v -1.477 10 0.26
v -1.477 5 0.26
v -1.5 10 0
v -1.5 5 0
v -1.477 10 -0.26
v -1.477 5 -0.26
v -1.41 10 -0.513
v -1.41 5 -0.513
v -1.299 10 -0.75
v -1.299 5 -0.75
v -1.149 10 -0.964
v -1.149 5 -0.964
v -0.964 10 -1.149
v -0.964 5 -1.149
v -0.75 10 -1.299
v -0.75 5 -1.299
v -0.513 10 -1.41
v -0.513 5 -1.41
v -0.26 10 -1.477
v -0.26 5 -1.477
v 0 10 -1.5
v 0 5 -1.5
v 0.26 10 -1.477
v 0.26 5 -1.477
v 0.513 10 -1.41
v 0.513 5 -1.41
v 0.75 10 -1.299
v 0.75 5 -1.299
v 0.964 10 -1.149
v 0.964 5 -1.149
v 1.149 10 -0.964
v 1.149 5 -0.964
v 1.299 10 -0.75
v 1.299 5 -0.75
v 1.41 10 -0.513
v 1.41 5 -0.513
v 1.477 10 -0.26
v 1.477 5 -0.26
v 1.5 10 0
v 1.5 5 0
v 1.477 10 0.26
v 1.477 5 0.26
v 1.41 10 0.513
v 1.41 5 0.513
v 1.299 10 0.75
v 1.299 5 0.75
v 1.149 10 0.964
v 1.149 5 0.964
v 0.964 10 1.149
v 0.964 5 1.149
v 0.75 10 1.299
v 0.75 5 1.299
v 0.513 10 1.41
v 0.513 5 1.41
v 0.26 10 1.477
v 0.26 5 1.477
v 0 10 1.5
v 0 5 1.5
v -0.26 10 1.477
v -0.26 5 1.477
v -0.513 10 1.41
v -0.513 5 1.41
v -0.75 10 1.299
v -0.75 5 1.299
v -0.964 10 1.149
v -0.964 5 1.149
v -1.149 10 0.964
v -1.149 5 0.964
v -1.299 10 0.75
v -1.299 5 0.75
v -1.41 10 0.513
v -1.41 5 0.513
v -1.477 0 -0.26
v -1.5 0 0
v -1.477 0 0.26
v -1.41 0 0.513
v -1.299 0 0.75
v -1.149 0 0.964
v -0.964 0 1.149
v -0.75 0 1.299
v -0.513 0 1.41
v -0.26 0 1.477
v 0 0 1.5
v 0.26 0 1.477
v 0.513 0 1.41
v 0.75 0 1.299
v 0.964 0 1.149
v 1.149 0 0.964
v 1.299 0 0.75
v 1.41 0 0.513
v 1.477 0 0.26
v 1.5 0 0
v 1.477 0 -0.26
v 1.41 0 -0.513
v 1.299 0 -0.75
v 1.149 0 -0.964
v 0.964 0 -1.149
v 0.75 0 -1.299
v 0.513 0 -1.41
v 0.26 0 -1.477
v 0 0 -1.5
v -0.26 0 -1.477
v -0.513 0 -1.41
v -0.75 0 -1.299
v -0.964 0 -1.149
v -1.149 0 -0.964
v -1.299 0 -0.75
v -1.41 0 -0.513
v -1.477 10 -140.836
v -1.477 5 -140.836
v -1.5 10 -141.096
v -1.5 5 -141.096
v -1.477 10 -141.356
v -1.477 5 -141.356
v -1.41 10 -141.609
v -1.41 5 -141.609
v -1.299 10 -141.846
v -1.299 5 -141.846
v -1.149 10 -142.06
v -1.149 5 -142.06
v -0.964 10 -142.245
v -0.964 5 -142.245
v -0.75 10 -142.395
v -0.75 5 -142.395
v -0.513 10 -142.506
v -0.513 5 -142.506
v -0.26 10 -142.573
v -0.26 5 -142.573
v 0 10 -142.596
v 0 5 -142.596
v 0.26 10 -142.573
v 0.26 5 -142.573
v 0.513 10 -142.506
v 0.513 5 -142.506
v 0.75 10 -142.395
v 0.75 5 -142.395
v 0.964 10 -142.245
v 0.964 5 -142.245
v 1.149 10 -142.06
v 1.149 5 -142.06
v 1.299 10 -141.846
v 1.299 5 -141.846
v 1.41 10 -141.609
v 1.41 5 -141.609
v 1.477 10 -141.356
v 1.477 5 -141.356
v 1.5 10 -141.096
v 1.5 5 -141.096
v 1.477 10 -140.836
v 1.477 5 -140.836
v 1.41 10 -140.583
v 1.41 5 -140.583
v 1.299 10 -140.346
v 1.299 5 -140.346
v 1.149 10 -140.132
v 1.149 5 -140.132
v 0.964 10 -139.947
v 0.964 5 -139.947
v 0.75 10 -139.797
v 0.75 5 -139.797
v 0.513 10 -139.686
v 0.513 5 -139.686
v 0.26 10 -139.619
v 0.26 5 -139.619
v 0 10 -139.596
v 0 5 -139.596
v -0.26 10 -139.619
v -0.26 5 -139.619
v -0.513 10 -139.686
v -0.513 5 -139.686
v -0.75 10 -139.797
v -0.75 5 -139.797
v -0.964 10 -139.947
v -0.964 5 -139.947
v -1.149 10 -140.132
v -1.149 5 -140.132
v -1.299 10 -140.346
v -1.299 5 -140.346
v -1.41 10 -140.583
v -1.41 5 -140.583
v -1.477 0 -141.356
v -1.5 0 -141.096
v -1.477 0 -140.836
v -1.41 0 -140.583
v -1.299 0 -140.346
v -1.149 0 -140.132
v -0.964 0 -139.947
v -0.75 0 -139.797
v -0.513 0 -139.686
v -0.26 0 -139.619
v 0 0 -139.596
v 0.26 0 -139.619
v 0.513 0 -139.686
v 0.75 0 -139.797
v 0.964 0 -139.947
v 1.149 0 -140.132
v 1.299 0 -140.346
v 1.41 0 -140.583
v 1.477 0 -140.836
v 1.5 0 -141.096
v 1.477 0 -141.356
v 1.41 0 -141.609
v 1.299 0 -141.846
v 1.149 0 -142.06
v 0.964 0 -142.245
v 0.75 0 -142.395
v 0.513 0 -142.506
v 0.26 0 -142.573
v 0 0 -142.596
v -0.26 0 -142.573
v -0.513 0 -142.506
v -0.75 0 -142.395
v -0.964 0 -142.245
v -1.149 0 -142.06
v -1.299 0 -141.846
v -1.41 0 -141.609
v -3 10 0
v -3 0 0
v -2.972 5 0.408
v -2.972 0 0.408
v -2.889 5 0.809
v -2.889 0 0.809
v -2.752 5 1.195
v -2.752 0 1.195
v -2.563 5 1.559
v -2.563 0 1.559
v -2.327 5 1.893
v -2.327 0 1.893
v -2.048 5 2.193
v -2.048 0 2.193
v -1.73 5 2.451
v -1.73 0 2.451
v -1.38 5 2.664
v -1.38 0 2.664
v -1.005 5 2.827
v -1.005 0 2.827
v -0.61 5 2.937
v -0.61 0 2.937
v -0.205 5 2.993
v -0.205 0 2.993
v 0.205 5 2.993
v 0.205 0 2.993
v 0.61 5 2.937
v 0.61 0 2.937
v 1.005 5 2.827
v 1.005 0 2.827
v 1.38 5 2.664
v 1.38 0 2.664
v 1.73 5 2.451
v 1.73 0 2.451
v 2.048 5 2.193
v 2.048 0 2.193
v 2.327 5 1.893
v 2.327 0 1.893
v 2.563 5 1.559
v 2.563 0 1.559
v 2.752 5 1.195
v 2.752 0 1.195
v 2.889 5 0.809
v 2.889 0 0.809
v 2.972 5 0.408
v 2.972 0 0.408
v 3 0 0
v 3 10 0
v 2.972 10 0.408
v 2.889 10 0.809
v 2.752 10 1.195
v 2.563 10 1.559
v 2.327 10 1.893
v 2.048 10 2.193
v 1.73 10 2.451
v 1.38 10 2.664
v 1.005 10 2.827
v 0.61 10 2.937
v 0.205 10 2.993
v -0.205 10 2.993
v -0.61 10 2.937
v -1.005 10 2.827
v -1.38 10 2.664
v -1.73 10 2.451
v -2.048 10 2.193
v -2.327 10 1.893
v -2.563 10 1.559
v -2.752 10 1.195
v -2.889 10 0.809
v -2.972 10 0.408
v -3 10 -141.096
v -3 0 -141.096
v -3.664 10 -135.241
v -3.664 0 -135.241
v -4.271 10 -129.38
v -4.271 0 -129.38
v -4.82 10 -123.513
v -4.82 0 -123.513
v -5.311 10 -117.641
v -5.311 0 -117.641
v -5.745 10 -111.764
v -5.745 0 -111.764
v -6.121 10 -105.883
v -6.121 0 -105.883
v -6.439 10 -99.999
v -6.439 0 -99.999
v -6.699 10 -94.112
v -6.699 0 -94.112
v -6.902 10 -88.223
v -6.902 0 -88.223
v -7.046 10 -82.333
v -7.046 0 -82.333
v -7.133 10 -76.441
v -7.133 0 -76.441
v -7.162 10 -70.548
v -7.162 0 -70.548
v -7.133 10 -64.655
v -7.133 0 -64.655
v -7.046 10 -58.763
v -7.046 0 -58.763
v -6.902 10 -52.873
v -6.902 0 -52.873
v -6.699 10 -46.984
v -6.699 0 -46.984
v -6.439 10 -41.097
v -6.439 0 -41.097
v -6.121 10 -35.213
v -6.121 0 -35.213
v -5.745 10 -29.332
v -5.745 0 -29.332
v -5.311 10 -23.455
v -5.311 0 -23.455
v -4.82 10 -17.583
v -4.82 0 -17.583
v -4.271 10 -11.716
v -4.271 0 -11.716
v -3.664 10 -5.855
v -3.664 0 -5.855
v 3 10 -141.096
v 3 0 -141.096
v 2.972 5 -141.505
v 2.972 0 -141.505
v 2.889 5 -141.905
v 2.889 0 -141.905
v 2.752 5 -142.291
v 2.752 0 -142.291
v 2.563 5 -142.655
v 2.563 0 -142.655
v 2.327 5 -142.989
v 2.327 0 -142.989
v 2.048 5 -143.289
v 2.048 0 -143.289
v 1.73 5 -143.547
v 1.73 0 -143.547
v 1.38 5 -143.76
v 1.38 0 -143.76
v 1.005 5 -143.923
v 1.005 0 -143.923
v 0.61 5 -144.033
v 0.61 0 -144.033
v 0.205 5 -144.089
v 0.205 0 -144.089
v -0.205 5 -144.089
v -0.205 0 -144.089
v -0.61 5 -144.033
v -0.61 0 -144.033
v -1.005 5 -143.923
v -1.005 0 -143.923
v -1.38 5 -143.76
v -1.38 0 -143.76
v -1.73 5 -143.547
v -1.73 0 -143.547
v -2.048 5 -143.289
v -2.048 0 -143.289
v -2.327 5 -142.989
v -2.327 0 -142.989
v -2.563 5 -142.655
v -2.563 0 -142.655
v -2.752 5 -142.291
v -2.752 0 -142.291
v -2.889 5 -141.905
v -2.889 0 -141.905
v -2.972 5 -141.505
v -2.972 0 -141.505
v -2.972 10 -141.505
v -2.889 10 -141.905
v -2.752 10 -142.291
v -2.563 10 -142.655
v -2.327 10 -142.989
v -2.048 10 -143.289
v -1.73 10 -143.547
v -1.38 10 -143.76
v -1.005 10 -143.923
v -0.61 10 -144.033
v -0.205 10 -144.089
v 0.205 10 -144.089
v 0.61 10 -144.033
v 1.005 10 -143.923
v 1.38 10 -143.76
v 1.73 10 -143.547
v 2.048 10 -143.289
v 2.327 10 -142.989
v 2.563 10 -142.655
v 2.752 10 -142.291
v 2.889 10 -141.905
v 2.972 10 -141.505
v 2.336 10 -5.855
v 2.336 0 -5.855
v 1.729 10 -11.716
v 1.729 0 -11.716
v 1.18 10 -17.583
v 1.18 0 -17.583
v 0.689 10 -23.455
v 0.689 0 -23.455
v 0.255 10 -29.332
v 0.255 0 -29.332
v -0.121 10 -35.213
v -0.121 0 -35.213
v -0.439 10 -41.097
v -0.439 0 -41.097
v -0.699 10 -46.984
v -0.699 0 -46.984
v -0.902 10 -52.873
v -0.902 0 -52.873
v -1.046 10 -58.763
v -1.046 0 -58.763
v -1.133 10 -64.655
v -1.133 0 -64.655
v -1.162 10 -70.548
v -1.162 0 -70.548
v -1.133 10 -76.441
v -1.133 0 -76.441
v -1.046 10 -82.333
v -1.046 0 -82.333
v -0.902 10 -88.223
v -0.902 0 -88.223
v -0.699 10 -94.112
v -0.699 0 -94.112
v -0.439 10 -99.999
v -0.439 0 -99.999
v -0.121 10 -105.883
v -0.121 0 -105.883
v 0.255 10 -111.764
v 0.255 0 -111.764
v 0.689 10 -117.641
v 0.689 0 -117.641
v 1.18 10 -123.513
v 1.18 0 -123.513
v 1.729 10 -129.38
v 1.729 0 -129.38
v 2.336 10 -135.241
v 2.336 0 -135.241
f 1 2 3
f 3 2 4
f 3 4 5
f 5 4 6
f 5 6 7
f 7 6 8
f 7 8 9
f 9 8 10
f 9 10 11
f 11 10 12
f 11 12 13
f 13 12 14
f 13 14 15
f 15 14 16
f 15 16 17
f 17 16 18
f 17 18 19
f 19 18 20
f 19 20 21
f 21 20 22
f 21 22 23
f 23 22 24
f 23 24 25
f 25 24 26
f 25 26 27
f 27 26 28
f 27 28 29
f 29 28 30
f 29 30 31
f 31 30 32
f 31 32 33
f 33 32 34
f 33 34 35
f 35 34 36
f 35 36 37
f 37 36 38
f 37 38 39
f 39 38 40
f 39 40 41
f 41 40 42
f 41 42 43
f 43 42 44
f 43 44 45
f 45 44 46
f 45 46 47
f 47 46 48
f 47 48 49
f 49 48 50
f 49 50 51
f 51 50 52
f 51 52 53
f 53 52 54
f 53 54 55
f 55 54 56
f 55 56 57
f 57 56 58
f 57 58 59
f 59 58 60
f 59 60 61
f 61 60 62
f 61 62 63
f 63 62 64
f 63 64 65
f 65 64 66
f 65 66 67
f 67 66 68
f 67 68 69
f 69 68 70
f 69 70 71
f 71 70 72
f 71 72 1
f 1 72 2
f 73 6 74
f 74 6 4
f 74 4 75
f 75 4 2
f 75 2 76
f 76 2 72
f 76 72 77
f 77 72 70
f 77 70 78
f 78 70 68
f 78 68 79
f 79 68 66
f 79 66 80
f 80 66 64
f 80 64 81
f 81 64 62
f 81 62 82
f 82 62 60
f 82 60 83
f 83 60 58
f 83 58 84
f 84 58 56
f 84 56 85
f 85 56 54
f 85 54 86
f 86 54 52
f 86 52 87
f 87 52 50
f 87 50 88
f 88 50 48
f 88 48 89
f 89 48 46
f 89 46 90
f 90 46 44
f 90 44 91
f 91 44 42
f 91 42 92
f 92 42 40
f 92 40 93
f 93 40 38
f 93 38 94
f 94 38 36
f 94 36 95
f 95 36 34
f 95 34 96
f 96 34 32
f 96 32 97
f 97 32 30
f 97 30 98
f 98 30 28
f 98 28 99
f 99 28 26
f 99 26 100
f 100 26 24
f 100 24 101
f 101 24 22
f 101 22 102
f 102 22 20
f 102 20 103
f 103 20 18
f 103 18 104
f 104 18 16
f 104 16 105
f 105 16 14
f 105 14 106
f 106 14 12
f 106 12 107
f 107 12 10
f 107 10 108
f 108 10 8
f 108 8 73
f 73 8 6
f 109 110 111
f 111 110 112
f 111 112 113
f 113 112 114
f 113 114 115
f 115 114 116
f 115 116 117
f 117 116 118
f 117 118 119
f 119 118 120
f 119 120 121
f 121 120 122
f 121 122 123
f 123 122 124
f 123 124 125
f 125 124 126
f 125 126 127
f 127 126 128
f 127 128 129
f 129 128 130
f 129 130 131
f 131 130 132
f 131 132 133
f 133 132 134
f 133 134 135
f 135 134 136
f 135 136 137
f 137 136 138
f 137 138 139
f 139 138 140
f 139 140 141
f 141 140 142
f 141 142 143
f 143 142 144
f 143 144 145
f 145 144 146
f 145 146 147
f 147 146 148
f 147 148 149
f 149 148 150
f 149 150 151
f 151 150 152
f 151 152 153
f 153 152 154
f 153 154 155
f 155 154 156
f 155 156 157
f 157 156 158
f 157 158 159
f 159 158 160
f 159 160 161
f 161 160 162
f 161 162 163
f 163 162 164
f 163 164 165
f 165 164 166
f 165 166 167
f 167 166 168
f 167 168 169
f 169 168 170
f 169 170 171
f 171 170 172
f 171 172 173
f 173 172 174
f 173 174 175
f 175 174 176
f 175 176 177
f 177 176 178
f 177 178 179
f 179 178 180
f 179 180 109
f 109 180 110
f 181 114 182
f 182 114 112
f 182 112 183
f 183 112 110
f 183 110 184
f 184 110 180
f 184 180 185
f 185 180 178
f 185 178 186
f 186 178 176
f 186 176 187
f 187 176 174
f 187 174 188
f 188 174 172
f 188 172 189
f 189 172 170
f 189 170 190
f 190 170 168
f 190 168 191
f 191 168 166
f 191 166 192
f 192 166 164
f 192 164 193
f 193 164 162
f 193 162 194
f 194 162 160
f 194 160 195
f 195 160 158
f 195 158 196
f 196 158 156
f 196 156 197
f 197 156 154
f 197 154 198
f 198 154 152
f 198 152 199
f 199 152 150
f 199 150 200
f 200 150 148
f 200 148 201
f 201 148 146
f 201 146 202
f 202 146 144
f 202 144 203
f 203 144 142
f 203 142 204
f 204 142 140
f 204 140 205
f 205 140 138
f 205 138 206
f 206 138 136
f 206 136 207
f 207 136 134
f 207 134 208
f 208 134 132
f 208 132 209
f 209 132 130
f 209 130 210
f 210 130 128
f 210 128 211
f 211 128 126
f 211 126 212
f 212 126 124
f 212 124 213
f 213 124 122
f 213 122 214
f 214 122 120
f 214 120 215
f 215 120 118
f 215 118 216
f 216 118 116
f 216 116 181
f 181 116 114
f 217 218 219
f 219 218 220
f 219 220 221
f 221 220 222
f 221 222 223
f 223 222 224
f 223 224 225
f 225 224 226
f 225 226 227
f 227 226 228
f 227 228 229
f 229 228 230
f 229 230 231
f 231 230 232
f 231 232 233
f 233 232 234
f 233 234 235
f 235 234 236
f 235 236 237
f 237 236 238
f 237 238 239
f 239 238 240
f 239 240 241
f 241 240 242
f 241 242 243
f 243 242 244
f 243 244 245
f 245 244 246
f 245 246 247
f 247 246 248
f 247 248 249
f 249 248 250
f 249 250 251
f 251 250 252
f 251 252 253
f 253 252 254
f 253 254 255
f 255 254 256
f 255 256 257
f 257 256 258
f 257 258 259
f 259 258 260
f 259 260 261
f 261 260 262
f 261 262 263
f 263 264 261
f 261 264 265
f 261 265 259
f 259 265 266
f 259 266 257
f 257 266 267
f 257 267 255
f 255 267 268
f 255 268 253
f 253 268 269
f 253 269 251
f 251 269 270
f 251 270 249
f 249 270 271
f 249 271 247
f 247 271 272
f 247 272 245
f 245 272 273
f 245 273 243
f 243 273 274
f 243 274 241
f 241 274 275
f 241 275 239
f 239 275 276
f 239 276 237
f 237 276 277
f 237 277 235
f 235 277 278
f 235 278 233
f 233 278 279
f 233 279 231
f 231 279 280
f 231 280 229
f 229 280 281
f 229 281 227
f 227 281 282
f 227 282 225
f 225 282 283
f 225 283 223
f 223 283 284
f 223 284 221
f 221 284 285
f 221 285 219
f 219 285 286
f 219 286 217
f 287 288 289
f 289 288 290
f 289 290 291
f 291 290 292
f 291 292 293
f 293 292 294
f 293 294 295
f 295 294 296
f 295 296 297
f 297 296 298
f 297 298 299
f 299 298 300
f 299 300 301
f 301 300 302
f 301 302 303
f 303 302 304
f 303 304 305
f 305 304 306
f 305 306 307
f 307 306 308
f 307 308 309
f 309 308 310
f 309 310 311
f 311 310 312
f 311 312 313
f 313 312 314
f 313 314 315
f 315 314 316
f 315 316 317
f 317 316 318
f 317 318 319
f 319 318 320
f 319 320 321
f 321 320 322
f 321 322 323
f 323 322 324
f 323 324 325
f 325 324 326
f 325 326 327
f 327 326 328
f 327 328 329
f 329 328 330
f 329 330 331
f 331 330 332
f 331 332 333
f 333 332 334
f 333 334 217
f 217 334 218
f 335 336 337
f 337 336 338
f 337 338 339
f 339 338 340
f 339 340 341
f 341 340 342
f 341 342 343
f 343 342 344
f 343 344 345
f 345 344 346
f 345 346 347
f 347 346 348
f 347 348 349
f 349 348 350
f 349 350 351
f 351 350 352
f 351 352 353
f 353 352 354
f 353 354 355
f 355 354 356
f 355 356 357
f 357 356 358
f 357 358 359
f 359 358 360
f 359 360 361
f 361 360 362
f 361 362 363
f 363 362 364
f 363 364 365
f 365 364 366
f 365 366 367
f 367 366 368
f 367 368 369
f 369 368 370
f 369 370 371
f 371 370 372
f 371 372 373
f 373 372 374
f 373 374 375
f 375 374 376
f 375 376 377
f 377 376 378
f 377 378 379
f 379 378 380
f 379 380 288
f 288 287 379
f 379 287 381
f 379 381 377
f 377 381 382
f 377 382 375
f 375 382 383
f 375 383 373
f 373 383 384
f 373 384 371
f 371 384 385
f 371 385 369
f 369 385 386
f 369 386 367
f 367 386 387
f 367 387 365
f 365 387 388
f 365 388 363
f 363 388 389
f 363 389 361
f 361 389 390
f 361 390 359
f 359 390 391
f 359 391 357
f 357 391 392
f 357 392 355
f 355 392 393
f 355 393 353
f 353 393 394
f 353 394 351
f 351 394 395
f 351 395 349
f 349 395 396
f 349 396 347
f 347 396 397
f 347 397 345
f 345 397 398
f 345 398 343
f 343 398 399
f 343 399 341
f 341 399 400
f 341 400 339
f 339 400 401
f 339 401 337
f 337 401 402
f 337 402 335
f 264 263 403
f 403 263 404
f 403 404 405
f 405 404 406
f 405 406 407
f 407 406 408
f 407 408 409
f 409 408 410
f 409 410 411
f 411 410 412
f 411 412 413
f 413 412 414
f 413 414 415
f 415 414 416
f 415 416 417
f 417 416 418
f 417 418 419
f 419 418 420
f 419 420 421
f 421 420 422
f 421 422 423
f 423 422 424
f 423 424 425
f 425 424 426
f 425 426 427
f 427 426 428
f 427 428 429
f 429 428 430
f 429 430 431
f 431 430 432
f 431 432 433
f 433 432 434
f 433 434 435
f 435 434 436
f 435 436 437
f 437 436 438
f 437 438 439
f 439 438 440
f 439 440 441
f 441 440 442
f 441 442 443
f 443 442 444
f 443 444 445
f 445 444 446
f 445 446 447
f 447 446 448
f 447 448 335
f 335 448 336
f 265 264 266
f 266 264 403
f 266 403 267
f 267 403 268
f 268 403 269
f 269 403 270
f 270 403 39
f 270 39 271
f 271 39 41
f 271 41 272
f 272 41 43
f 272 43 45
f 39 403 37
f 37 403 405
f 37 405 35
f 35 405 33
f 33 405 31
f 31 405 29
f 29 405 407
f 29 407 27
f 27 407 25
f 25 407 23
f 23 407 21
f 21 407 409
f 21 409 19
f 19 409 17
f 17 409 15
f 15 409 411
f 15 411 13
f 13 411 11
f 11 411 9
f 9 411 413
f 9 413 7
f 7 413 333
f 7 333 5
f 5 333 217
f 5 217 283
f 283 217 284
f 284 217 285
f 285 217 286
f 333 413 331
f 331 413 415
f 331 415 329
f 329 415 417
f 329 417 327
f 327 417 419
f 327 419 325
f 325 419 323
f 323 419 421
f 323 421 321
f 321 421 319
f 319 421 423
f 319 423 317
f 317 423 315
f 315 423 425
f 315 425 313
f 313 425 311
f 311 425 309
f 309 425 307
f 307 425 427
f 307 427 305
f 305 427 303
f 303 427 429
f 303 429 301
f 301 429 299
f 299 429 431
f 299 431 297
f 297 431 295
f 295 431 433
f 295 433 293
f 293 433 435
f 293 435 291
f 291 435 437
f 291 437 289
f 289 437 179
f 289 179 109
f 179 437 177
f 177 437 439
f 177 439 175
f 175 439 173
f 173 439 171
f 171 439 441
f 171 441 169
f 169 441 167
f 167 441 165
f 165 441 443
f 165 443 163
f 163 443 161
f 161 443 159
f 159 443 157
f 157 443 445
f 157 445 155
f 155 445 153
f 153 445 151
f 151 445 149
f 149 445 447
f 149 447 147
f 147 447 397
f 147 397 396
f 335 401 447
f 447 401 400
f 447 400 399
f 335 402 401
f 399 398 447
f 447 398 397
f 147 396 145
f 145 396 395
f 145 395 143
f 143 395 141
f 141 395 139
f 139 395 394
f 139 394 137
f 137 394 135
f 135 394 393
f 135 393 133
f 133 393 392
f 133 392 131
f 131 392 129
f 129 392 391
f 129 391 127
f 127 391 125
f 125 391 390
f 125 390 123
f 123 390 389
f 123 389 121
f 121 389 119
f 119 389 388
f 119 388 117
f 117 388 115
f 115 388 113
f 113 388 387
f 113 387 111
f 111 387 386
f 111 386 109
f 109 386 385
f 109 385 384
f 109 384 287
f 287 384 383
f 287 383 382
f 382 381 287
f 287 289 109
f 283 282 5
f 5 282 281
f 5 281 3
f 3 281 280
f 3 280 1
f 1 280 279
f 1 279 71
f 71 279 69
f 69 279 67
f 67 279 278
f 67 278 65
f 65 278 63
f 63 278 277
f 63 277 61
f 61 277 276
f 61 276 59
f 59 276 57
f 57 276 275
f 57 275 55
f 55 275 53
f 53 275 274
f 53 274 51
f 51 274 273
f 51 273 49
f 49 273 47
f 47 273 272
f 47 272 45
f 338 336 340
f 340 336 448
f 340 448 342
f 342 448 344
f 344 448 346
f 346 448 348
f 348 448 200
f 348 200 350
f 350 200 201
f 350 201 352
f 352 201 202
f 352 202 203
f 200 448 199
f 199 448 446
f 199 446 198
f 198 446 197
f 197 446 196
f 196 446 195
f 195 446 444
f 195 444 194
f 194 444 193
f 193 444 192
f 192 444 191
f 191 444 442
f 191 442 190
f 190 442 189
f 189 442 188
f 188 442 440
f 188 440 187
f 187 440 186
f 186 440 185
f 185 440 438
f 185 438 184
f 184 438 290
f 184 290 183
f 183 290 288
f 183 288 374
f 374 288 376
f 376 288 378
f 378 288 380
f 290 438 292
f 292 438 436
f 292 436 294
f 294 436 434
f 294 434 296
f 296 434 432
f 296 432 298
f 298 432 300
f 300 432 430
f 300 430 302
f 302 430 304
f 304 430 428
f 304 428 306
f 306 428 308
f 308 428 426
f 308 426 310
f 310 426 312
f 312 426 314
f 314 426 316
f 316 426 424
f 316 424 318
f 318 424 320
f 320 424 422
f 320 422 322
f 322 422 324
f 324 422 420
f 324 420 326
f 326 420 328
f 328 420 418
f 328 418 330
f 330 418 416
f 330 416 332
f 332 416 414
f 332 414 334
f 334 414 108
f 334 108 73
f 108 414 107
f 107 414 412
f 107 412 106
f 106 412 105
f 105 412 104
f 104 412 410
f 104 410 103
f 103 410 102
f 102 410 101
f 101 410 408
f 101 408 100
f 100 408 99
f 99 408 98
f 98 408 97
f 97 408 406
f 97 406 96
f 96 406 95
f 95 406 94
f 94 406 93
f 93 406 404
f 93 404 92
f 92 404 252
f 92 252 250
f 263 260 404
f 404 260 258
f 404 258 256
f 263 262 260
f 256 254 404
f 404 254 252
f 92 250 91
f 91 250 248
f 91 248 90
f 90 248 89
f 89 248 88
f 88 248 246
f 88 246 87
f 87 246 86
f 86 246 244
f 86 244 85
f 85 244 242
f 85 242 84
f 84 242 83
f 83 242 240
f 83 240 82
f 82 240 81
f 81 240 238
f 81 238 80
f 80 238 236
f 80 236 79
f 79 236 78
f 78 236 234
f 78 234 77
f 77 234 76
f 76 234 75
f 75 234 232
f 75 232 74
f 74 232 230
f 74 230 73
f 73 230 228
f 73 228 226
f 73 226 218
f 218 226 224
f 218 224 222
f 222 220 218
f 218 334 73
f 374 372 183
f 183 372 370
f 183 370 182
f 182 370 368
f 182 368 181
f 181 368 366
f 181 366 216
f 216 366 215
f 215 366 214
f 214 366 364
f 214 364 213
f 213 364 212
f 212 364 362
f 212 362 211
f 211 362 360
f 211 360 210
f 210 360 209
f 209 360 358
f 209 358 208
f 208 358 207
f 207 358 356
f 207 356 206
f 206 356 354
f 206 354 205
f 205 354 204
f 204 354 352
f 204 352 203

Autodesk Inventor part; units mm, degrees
ref_plane "YZ Plane" through (0, 0, 0) normal (1, 0, 0) x (0, 1, 0)
ref_plane "XZ Plane" through (0, 0, 0) normal (0, 1, 0) x (-1, 0, 0)
ref_plane "XY Plane" through (0, 0, 0) normal (0, 0, 1) x (1, 0, 0)
sketch "Sketch1" plane through (0, 0, 0) normal (0, 1, 0) x (-1, 0, 0)
  line L0 (0, 0) -> (0, -141.096) construction
  line L1 (-3, 0) -> (-3, -141.096)
  line L2 (3, -141.096) -> (3, 0)
  arc A0 (3, 0) -> (-3, 0) centre (0, 0) ccw
  arc A1 (-3, -141.096) -> (3, -141.096) centre (0, -141.096) ccw
  circle A2 centre (0, 0) radius 1.5
  circle A3 centre (0, -141.096) radius 1.5
  arc A4 (-3, -141.096) -> (-3, 0) centre (-598.838, -70.548) ccw
  arc A5 (3, -141.096) -> (3, 0) centre (-592.838, -70.548) ccw
  point P0 (0, -70.548)
  dimension "d0" = 6
  dimension "d1" = 141.096
  dimension "d2" = 3
  dimension "d3" = 3
  dimension "d10" = 600
  dimension "d11" = 600
extrude "Extrusion1" add sketch "Sketch1" along normal blind 10 contours A0 L2 A1 A4 | A5 L2
